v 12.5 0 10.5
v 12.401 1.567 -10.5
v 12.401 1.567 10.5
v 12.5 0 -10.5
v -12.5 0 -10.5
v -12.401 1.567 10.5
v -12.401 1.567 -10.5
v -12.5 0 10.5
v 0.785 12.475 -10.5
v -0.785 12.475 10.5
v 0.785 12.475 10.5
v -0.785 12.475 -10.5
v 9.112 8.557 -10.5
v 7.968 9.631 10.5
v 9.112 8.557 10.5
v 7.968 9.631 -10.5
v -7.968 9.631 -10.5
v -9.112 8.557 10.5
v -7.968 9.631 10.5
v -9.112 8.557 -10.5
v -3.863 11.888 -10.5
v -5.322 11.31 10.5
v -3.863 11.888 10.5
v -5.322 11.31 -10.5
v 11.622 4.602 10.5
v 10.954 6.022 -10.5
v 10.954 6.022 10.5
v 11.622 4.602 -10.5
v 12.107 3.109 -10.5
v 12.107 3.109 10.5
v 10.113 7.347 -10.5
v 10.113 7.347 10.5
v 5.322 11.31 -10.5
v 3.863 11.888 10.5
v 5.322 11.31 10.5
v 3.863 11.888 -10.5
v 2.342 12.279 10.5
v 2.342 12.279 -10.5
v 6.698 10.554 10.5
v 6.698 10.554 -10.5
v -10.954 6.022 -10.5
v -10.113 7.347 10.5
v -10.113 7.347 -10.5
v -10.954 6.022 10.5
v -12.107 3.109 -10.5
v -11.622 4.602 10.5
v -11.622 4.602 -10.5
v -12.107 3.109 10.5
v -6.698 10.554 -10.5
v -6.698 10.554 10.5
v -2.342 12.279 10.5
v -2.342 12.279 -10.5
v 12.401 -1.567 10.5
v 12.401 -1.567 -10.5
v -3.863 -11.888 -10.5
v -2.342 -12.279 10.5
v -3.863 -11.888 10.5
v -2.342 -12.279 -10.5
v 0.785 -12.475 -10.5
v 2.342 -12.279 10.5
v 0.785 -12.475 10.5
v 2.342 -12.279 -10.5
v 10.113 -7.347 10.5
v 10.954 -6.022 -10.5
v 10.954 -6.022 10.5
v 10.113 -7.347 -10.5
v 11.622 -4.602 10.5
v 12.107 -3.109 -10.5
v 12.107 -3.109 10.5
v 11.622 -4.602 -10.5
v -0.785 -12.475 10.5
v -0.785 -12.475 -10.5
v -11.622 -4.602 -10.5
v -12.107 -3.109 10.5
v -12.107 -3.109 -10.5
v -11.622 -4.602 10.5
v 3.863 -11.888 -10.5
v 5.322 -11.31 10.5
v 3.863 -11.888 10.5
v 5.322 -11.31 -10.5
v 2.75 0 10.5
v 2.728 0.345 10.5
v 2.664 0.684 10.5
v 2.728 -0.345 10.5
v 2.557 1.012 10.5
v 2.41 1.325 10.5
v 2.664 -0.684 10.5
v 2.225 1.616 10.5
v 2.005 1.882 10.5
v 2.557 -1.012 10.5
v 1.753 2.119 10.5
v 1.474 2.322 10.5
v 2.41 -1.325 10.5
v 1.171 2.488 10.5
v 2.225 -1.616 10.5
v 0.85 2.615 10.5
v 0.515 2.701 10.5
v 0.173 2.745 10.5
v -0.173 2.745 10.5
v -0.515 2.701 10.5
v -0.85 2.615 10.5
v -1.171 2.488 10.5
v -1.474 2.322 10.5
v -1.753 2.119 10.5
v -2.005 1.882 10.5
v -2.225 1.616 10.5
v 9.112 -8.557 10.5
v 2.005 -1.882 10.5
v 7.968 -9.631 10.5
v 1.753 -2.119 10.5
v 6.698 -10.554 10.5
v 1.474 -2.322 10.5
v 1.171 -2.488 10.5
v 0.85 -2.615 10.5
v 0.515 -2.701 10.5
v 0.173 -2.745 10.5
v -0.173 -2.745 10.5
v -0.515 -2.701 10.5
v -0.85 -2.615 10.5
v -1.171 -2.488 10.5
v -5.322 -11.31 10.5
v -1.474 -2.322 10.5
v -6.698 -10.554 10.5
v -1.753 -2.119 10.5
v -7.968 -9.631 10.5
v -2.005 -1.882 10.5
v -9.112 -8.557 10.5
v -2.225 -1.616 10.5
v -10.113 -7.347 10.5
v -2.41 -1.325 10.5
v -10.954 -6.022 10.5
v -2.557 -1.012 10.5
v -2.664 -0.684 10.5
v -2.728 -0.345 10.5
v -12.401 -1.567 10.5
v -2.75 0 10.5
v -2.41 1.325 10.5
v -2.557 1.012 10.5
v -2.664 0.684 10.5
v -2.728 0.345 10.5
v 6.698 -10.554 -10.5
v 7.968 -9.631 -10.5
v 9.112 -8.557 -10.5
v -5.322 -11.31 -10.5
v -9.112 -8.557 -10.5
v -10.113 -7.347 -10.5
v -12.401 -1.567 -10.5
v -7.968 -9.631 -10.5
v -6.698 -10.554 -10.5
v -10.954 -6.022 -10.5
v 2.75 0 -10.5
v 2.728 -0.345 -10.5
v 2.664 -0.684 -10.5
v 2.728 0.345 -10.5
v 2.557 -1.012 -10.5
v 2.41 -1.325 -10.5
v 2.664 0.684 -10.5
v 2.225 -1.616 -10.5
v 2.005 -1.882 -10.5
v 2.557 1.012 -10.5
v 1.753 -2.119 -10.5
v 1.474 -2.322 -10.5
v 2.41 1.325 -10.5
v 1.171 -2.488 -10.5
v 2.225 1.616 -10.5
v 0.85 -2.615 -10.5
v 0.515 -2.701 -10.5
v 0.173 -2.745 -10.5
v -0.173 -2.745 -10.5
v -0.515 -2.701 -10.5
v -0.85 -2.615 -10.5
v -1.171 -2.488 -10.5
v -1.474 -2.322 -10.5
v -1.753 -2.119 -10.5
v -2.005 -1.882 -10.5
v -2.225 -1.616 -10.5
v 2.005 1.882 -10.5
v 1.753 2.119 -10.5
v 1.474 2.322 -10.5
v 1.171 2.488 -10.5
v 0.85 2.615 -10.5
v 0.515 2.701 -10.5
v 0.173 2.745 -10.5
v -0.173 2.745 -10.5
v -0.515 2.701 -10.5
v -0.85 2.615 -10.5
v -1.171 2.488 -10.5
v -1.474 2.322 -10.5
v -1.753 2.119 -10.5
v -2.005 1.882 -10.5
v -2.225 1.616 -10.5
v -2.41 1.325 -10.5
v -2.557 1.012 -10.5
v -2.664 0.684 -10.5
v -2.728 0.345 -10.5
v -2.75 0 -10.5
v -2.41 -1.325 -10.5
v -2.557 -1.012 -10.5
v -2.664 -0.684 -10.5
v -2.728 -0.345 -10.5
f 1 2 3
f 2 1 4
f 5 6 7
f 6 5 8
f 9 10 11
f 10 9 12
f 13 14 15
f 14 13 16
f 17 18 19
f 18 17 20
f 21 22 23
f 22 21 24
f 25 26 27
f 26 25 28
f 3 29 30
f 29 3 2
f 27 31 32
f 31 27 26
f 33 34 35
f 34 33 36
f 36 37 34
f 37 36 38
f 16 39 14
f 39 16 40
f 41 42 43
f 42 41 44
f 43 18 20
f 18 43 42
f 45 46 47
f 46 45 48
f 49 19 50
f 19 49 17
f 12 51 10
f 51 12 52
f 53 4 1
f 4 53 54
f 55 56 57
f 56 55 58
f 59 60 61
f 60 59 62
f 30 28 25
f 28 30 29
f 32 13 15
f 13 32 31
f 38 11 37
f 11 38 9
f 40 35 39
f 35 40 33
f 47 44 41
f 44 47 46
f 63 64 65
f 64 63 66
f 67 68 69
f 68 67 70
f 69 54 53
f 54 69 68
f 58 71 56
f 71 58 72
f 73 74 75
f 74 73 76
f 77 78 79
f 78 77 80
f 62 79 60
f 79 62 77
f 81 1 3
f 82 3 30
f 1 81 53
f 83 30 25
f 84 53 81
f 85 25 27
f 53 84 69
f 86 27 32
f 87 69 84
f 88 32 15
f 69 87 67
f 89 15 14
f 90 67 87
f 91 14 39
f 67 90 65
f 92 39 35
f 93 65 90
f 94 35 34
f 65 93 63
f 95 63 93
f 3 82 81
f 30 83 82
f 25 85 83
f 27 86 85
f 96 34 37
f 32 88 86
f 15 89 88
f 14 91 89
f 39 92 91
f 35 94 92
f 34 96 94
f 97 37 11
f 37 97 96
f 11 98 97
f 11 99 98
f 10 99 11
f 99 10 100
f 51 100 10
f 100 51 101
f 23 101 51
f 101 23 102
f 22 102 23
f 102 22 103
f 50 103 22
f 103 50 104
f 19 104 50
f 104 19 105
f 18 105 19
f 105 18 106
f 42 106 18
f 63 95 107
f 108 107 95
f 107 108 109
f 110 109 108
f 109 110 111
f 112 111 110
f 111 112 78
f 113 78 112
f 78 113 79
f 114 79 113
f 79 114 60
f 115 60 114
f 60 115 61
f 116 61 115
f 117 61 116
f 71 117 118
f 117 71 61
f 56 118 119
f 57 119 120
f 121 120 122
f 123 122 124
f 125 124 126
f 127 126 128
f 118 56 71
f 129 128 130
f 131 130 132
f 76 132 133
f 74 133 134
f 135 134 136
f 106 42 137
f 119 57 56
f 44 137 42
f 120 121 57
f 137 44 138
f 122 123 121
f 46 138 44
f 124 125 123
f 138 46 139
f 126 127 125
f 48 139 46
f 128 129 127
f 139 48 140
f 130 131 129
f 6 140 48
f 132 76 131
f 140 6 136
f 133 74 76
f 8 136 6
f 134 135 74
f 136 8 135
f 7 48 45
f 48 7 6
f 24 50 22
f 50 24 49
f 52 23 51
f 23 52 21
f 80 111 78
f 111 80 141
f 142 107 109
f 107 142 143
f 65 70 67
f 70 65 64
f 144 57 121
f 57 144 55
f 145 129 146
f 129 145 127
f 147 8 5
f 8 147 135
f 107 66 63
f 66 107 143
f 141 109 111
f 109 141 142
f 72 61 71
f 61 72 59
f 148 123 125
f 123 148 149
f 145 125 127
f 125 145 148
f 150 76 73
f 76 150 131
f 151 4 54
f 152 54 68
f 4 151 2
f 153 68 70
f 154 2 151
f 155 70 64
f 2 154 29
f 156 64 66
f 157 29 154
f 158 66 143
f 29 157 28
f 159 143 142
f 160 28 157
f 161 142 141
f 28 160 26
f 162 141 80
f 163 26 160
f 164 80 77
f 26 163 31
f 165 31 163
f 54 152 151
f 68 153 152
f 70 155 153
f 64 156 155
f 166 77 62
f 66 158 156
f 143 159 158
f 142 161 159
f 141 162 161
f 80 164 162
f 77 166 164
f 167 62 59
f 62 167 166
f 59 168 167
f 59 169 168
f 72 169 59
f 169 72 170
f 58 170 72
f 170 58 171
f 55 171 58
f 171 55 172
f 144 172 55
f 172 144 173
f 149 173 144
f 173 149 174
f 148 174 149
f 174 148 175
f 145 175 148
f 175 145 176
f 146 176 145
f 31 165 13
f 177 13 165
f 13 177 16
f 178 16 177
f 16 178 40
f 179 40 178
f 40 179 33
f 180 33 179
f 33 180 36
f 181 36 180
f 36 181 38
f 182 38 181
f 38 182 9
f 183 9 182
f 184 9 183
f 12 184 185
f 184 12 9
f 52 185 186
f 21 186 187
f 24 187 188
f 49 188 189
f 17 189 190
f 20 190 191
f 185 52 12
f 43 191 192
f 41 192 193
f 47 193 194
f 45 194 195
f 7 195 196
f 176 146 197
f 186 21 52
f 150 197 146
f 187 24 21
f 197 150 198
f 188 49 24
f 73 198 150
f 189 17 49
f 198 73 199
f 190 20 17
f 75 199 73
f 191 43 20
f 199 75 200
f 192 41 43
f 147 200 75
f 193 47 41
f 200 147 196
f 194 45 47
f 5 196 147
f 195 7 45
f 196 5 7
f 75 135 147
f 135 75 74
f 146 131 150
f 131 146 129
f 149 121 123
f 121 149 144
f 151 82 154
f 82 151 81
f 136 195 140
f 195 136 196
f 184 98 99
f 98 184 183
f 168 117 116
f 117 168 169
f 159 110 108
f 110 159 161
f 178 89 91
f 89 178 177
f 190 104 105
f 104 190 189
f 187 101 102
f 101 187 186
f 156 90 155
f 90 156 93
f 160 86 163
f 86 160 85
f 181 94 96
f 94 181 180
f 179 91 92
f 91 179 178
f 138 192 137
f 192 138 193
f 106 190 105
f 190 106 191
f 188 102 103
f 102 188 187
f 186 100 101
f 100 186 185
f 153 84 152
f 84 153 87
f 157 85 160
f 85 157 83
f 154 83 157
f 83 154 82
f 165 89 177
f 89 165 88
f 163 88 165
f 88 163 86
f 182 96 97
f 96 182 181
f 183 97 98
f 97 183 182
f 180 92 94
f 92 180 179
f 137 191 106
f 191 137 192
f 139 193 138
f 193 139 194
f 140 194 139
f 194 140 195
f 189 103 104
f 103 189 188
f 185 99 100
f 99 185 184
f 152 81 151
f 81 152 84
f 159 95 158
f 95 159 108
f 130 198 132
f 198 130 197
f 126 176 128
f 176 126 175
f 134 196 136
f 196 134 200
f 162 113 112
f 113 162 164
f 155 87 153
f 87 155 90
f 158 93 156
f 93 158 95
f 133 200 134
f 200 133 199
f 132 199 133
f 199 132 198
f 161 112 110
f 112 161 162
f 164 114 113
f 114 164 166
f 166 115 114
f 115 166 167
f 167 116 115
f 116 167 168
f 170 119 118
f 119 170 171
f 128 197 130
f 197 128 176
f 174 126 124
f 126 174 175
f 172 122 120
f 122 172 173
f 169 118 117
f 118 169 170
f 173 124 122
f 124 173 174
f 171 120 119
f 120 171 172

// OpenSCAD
$fn = 50;


difference() {
	union() {
		translate(v = [0, 0, -10.5000000000]) {
			cylinder(h = 21, r = 12.5000000000);
		}
	}
	union() {
		translate(v = [0, 0, -100.0000000000]) {
			cylinder(h = 200, r = 2.7500000000);
		}
	}
}
